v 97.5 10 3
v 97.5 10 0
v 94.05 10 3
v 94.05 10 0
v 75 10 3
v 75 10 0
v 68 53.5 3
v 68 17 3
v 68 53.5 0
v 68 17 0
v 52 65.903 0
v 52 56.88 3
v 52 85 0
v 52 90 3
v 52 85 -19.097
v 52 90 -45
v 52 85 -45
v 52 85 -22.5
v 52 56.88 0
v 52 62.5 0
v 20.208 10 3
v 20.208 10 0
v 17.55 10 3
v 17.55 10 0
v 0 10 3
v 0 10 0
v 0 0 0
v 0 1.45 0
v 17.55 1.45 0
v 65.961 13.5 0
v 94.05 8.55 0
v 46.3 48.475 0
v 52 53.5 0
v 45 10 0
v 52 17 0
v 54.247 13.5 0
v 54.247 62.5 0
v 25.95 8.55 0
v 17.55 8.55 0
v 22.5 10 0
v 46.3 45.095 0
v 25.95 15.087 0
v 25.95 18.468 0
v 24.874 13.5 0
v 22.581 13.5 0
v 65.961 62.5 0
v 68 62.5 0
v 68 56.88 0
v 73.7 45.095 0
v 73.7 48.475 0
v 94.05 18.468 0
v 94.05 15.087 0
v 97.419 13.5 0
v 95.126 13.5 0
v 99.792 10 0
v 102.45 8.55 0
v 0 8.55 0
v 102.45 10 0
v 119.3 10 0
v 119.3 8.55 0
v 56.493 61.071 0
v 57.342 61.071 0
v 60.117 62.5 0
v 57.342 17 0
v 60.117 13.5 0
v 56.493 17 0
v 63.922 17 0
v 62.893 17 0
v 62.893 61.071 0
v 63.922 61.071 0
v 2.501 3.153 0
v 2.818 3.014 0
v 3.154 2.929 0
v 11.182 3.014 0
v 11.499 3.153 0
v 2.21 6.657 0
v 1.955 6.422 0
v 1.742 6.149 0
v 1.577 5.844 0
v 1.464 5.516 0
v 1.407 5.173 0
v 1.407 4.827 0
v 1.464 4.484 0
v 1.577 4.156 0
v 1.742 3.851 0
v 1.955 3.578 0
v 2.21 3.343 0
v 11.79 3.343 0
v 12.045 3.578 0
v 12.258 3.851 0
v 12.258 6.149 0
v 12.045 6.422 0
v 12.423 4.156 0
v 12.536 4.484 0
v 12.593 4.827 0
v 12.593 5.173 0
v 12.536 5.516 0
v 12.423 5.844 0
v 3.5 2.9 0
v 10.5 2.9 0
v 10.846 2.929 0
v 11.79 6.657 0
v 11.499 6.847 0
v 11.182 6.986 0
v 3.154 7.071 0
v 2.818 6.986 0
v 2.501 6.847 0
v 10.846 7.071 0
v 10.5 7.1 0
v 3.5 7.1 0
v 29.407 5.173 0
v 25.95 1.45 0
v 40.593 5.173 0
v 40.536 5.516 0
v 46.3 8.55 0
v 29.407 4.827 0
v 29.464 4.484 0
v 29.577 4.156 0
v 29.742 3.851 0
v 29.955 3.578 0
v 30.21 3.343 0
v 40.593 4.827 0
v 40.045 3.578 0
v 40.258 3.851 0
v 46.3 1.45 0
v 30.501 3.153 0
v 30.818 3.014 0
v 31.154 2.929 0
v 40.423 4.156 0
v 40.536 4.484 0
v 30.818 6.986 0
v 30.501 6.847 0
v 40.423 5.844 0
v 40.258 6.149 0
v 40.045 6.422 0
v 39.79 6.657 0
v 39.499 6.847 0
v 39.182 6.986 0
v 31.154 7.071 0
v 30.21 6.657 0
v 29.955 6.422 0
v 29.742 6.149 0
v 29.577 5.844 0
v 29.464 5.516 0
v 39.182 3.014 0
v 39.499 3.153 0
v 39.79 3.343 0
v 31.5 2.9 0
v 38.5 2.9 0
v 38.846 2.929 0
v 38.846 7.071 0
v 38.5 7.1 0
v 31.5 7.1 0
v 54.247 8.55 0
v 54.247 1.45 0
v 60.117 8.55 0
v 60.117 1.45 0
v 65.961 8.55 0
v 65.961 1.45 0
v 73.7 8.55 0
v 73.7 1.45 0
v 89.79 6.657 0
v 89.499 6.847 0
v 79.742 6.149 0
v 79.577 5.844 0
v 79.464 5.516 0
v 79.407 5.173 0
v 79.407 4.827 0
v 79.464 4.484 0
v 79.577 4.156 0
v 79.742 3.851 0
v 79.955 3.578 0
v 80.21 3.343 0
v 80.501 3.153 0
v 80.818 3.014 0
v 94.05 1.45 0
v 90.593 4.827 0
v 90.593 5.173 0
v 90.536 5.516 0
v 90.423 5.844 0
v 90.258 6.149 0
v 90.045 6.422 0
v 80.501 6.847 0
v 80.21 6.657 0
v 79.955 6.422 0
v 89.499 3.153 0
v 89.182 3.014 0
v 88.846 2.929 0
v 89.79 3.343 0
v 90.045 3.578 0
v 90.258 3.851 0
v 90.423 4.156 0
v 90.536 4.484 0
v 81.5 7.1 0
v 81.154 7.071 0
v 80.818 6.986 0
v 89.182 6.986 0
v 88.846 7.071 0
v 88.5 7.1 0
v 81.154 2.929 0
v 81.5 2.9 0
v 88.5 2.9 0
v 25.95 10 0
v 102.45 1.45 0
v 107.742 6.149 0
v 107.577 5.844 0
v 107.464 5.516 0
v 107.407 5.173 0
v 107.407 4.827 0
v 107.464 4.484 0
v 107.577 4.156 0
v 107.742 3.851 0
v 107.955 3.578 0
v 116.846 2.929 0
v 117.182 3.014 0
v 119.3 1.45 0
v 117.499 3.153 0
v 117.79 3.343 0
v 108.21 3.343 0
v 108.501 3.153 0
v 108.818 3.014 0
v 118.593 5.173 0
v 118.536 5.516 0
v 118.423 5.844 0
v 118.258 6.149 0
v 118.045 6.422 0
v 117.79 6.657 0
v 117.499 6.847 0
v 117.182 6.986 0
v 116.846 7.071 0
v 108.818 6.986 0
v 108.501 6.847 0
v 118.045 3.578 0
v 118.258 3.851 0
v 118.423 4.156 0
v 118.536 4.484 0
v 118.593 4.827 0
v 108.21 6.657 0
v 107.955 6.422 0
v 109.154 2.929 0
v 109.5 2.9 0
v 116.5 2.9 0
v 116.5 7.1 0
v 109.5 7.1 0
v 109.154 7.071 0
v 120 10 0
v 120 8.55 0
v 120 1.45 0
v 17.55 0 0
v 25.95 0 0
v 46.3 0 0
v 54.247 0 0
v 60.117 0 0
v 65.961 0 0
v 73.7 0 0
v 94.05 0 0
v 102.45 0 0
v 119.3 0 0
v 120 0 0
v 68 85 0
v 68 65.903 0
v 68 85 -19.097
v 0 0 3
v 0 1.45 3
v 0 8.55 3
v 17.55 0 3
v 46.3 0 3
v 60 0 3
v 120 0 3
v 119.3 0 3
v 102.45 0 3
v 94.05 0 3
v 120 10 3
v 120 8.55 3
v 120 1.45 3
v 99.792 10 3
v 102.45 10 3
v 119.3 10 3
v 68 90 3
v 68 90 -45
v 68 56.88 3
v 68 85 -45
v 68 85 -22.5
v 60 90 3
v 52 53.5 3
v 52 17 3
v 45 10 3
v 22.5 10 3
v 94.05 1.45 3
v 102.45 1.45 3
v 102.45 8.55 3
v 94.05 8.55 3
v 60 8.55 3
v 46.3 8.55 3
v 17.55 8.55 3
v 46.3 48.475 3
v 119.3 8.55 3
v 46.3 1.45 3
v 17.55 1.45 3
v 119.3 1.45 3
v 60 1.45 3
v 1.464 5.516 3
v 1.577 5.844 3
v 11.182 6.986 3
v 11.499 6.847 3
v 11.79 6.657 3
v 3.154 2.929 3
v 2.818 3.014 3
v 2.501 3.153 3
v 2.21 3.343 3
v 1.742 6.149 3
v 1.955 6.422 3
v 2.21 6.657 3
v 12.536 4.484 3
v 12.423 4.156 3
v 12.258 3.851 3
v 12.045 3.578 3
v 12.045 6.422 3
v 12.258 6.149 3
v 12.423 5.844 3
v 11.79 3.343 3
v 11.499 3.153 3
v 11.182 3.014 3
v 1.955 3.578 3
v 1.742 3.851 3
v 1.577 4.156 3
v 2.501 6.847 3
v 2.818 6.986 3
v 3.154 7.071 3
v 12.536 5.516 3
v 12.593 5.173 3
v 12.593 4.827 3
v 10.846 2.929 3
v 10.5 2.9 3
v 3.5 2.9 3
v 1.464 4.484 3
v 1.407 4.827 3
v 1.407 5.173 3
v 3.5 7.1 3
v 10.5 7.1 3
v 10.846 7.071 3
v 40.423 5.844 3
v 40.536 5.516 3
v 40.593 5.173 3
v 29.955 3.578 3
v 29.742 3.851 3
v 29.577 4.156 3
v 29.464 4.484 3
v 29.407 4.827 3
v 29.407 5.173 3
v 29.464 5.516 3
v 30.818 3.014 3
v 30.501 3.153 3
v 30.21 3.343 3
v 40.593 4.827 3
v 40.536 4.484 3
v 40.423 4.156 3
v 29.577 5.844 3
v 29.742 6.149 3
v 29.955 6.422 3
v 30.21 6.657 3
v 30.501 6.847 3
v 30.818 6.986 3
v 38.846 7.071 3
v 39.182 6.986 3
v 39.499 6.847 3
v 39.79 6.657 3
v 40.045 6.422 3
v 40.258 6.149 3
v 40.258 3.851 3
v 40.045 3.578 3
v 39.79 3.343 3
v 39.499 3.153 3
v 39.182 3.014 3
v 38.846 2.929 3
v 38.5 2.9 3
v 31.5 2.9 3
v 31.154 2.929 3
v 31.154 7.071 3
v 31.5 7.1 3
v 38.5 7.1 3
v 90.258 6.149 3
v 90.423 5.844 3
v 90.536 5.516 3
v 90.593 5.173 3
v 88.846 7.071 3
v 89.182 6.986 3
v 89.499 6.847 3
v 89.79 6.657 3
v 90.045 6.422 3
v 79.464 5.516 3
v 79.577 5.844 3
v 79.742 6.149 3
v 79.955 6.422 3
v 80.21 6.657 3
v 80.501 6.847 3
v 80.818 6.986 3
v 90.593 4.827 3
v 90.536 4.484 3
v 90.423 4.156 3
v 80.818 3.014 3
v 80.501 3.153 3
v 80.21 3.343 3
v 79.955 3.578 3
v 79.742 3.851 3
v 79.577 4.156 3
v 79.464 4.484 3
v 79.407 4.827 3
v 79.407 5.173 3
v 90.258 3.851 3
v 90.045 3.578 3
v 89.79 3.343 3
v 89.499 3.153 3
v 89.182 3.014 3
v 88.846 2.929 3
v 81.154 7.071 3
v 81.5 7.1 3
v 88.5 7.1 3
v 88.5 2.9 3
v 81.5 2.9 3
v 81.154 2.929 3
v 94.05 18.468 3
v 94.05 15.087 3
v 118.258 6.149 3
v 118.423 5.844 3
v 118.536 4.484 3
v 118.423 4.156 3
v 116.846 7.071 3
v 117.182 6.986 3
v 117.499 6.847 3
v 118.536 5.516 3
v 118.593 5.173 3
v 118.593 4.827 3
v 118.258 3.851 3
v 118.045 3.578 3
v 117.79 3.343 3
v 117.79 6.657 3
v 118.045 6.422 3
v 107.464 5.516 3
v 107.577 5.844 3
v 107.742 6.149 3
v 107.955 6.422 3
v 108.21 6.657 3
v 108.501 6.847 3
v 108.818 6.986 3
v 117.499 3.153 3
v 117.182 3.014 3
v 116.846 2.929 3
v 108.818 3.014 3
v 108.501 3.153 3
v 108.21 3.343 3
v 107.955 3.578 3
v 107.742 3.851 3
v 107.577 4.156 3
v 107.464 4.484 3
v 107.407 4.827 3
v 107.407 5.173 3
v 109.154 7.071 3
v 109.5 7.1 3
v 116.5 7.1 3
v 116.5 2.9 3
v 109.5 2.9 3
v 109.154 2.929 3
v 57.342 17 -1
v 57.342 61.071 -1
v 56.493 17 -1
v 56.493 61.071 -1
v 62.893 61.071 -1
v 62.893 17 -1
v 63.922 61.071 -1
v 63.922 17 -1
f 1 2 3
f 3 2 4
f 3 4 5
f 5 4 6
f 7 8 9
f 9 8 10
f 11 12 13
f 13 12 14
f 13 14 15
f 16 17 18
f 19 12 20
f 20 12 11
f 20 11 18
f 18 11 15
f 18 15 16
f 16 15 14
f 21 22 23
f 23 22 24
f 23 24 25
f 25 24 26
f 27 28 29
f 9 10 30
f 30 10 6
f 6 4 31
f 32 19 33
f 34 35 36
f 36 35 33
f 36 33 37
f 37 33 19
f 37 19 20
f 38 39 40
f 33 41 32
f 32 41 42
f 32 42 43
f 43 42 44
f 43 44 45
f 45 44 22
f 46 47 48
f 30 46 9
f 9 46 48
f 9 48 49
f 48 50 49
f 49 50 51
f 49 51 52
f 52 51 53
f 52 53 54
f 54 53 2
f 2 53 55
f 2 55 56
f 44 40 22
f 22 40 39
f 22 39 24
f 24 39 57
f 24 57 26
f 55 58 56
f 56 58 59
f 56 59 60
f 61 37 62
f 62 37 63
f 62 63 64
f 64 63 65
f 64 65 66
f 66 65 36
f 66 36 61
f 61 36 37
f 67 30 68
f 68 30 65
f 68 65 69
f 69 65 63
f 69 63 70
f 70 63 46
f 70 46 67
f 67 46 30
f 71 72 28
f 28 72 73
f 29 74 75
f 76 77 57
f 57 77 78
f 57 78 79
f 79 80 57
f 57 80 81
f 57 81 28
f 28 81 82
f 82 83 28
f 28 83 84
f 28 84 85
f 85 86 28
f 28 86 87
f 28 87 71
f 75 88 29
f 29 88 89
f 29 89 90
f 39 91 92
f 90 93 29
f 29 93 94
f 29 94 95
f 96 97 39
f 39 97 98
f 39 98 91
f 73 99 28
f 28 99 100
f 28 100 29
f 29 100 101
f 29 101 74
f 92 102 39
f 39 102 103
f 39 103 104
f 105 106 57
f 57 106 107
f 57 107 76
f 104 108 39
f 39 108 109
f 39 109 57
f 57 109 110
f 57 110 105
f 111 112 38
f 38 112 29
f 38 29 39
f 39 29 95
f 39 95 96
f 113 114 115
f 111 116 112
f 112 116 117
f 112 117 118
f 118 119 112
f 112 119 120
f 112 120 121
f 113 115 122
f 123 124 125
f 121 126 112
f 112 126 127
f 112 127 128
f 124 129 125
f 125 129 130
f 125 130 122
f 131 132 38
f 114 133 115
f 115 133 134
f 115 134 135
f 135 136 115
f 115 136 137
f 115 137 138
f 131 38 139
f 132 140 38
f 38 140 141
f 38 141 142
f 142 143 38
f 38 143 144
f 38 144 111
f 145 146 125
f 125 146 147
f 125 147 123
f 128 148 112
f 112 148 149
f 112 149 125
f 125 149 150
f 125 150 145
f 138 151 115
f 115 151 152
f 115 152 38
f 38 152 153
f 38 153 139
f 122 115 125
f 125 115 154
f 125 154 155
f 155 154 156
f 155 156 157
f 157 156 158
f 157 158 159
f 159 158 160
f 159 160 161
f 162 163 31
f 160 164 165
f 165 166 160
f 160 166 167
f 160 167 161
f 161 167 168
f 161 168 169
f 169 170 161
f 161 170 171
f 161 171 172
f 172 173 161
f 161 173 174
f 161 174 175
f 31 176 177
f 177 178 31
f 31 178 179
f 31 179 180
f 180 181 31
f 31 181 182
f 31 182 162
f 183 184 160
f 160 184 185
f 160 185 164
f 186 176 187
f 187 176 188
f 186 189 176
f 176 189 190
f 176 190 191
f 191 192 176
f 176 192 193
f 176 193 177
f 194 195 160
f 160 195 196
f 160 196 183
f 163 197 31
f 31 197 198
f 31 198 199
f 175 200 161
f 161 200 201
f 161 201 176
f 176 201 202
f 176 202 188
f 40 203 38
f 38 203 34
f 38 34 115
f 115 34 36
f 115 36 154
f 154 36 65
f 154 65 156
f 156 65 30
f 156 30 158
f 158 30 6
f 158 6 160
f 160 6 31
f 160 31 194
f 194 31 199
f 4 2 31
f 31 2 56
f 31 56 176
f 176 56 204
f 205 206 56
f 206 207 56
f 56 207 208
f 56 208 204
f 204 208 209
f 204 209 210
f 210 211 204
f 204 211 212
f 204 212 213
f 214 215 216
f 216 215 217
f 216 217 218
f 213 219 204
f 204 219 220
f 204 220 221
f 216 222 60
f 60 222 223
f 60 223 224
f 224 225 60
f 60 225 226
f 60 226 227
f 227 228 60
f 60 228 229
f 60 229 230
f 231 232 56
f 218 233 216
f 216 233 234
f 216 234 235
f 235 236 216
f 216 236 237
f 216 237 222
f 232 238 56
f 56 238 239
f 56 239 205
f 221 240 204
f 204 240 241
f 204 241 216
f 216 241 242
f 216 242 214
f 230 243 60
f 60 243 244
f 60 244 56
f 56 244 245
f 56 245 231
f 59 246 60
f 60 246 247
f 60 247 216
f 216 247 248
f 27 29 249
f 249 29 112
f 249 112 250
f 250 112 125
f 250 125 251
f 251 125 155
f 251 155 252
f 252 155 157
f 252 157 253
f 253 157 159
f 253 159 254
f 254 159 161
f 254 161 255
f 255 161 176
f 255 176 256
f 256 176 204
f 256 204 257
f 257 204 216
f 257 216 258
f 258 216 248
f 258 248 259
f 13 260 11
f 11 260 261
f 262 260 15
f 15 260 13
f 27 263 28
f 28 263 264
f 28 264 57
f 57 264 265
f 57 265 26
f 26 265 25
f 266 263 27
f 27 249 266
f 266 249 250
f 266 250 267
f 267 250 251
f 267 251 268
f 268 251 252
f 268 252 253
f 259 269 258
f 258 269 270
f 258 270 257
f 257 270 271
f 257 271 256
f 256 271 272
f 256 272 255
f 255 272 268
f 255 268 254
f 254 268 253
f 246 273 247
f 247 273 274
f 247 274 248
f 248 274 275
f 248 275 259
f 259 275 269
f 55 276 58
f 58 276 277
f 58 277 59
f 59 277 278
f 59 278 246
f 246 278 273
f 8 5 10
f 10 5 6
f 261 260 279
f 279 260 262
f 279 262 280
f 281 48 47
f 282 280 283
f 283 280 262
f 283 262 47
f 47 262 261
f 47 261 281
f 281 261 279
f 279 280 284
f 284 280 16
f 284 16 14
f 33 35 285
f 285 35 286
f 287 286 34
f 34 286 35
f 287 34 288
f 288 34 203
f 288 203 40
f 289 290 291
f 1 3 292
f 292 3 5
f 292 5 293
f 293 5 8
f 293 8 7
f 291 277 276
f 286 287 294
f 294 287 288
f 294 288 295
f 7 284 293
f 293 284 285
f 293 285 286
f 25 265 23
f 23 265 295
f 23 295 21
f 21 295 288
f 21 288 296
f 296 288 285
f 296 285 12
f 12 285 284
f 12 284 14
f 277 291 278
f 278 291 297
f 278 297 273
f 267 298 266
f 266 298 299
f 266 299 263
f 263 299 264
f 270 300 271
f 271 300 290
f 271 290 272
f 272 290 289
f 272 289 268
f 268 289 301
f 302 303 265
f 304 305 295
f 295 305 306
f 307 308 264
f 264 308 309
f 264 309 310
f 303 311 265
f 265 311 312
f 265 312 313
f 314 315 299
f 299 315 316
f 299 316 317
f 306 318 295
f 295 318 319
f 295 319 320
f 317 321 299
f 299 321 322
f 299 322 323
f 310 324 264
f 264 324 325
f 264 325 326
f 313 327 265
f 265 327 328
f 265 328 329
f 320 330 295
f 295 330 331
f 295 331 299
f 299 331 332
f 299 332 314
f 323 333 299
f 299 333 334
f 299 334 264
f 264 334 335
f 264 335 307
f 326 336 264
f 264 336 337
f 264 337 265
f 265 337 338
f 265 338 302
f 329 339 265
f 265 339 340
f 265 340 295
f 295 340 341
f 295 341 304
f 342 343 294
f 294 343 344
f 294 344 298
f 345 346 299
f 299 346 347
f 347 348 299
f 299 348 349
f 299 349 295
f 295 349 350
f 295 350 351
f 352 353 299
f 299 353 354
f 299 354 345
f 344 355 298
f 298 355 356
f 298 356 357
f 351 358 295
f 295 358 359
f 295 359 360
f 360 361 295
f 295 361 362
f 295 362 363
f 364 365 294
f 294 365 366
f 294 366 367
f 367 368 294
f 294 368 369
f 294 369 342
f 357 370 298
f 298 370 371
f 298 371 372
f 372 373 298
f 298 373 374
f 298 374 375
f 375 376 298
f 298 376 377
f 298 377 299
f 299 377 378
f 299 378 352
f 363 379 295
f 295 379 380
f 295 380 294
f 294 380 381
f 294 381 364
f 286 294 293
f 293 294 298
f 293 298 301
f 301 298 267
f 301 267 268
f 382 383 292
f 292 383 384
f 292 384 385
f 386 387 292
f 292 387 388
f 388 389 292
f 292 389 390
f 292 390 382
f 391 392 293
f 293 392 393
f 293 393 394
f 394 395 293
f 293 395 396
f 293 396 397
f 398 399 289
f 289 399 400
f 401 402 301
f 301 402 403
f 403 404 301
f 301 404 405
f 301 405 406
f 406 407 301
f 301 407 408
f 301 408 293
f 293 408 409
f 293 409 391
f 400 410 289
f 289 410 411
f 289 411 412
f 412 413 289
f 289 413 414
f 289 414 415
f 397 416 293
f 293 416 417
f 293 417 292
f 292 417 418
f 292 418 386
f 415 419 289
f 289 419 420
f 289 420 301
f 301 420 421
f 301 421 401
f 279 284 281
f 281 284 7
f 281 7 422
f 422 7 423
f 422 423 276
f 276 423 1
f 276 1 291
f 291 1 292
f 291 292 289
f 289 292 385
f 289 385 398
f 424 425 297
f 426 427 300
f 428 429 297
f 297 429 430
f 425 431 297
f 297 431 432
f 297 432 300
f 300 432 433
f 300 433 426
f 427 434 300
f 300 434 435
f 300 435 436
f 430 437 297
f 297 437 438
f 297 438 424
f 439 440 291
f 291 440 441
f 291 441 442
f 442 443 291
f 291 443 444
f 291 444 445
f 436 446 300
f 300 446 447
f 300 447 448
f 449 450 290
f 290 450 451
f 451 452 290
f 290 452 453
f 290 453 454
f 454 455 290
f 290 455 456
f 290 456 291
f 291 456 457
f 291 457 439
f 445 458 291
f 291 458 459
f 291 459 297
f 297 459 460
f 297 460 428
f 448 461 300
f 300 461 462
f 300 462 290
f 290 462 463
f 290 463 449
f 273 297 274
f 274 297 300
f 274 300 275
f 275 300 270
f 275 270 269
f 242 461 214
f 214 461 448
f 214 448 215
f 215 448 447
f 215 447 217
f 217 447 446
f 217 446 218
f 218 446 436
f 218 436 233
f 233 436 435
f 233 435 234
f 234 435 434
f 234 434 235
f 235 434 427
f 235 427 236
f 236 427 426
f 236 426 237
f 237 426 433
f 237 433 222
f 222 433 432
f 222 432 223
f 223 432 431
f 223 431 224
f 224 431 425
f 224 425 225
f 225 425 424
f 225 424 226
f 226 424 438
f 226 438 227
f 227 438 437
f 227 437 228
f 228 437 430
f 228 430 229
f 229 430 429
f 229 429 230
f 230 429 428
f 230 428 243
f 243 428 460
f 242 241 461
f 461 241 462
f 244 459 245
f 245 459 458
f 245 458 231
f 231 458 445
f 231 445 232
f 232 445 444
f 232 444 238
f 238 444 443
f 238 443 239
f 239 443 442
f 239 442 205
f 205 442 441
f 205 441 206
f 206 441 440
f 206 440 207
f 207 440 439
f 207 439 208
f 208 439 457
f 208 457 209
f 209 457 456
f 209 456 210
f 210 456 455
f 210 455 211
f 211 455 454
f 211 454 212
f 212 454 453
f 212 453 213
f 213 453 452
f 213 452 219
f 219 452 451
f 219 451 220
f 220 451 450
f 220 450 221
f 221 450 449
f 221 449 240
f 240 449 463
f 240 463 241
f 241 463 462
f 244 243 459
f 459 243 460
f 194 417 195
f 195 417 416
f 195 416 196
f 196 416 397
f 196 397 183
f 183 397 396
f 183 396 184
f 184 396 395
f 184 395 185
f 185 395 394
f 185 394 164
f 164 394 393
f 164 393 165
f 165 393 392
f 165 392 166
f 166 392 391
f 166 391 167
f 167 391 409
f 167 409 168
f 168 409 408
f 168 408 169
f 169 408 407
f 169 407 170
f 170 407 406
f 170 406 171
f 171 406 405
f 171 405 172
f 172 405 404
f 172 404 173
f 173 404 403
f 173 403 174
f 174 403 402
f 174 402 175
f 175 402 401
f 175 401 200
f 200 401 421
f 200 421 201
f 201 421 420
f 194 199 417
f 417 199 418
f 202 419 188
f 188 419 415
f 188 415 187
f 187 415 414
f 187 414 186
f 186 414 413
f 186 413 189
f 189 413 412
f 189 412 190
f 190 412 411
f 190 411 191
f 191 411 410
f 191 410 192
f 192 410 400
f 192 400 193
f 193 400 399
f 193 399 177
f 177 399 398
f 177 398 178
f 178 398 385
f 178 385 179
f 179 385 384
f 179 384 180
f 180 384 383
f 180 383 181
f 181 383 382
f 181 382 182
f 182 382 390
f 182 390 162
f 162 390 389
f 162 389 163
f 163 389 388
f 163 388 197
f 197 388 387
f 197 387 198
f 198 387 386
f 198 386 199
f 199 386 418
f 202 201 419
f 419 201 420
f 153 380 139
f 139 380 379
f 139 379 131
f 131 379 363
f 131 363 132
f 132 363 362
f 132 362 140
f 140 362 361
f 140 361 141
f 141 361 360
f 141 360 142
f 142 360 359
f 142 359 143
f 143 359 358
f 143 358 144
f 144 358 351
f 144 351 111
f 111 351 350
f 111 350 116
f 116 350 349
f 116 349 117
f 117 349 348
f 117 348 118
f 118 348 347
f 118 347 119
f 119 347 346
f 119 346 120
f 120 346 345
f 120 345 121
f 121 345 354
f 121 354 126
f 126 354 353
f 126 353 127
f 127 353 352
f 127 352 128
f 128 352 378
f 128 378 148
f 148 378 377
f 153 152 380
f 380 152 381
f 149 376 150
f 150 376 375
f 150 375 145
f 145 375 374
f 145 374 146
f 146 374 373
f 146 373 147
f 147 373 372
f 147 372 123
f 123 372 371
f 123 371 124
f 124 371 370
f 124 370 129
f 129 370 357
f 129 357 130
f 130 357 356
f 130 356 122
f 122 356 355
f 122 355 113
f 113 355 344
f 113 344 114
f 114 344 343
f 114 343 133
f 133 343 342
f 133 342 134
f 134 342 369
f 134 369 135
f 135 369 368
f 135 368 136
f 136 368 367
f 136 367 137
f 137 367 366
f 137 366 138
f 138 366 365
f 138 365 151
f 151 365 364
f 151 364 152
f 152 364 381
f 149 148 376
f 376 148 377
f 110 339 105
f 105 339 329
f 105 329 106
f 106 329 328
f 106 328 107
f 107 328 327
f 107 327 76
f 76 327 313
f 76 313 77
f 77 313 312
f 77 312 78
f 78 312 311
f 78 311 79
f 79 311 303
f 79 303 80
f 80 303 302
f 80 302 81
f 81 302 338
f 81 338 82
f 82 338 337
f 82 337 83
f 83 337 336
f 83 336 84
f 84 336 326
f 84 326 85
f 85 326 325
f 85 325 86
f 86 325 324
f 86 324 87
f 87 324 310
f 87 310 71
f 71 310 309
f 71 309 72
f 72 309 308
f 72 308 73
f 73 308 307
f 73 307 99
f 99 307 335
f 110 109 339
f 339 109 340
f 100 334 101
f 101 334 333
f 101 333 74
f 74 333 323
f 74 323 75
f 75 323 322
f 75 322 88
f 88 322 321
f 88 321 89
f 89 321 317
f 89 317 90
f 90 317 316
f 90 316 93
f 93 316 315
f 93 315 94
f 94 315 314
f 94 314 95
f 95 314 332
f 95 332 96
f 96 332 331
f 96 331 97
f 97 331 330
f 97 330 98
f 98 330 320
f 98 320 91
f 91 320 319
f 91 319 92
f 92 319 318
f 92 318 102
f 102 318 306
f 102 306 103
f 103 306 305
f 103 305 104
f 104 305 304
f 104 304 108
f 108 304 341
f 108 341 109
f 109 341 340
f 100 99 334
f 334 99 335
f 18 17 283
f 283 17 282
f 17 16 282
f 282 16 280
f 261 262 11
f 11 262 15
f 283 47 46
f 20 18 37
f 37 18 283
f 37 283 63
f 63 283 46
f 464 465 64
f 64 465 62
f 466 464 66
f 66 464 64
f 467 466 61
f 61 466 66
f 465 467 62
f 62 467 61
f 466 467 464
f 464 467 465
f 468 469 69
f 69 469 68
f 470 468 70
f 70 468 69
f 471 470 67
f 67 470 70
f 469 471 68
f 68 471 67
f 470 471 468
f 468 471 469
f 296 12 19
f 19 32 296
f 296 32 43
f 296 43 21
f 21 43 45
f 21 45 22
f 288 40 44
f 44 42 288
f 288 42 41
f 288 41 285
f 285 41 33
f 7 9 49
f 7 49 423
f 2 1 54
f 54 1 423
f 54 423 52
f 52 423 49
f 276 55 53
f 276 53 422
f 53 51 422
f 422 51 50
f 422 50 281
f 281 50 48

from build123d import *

# Parameters (mm, degrees)
BOSS_EXTRUDE1_DEPTH = 3
CUT_EXTRUDE1_DEPTH  = 3
SKETCH4_W           = 16
SKETCH4_H           = 5
BOSS_EXTRUDE2_DEPTH = 45
BOSS_EXTRUDE3_DEPTH = 16
SKETCH8_W           = 0.849028348
SKETCH8_H           = 44.071161876
SKETCH8_W_2         = 1.029765792
BOSS_EXTRUDE4_DEPTH = 1
BOSS_EXTRUDE5_DEPTH = 3


with BuildPart() as part:
    # Sketch1 → Boss-Extrude1 (new body)
    with BuildSketch(Plane.XY):
        Polygon((0, 0), (120, 0), (120, 10), (75, 10), (68, 17), (68, 40), (68, 90), (52, 90), (52, 40), (52, 17), (45, 10), (0, 10), align=None)
    extrude(amount=BOSS_EXTRUDE1_DEPTH)

    # Sketch2 → Cut-Extrude1 (cut)
    with BuildSketch(Plane.XY.offset(3)):
        with BuildLine():
            Line((3.5, 7.1), (10.5, 7.1))
            ThreePointArc((10.5, 7.1), (12.6, 5), (10.5, 2.9))
            Line((10.5, 2.9), (3.5, 2.9))
            ThreePointArc((3.5, 2.9), (1.4, 5), (3.5, 7.1))
        make_face()
        with BuildLine():
            Line((31.5, 7.1), (38.5, 7.1))
            ThreePointArc((38.5, 7.1), (40.6, 5), (38.5, 2.9))
            Line((38.5, 2.9), (31.5, 2.9))
            ThreePointArc((31.5, 2.9), (29.4, 5), (31.5, 7.1))
        make_face()
        with BuildLine():
            Line((81.5, 7.1), (88.5, 7.1))
            ThreePointArc((88.5, 7.1), (90.6, 5), (88.5, 2.9))
            Line((88.5, 2.9), (81.5, 2.9))
            ThreePointArc((81.5, 2.9), (79.4, 5), (81.5, 7.1))
        make_face()
        with BuildLine():
            Line((116.5, 2.9), (109.5, 2.9))
            ThreePointArc((109.5, 2.9), (107.4, 5), (109.5, 7.1))
            Line((109.5, 7.1), (116.5, 7.1))
            ThreePointArc((116.5, 7.1), (118.6, 5), (116.5, 2.9))
        make_face()
    extrude(amount=-CUT_EXTRUDE1_DEPTH, mode=Mode.SUBTRACT)

    # Sketch4 → Boss-Extrude2 (add)
    with BuildSketch(Plane(origin=(0, 0, 0), x_dir=(-1, 0, 0), z_dir=(0, 0, -1))):
        with Locations((-60, 87.5)):
            Rectangle(SKETCH4_W, SKETCH4_H)
    extrude(amount=BOSS_EXTRUDE2_DEPTH)

    # Sketch7 → Boss-Extrude3 (add)
    with BuildSketch(Plane.ZY.offset(-52)):
        Polygon((-22.5, 85), (0, 62.5), (0, 65.90318292), (-19.09681708, 85), align=None)
    extrude(amount=-BOSS_EXTRUDE3_DEPTH)

    # Sketch8 → Boss-Extrude4 (add)
    with BuildSketch(Plane(origin=(0, 0, 0), x_dir=(-1, 0, 0), z_dir=(0, 0, -1))):
        with Locations((-56.917783528, 39.035580938)):
            Rectangle(SKETCH8_W, SKETCH8_H)
        with Locations((-63.407411106, 39.035580938)):
            Rectangle(SKETCH8_W_2, SKETCH8_H)
    extrude(amount=BOSS_EXTRUDE4_DEPTH)

    # Sketch9 → Boss-Extrude5 (add)
    with BuildSketch(Plane.XY.offset(3)):
        Polygon((22.5, 10), (52, 53.5), (52, 56.880398444), (20.207545882, 10), align=None)
        Polygon((97.5, 10), (68, 53.5), (68, 56.880398444), (99.792454118, 10), align=None)
    extrude(amount=-BOSS_EXTRUDE5_DEPTH)


solid = part.part
